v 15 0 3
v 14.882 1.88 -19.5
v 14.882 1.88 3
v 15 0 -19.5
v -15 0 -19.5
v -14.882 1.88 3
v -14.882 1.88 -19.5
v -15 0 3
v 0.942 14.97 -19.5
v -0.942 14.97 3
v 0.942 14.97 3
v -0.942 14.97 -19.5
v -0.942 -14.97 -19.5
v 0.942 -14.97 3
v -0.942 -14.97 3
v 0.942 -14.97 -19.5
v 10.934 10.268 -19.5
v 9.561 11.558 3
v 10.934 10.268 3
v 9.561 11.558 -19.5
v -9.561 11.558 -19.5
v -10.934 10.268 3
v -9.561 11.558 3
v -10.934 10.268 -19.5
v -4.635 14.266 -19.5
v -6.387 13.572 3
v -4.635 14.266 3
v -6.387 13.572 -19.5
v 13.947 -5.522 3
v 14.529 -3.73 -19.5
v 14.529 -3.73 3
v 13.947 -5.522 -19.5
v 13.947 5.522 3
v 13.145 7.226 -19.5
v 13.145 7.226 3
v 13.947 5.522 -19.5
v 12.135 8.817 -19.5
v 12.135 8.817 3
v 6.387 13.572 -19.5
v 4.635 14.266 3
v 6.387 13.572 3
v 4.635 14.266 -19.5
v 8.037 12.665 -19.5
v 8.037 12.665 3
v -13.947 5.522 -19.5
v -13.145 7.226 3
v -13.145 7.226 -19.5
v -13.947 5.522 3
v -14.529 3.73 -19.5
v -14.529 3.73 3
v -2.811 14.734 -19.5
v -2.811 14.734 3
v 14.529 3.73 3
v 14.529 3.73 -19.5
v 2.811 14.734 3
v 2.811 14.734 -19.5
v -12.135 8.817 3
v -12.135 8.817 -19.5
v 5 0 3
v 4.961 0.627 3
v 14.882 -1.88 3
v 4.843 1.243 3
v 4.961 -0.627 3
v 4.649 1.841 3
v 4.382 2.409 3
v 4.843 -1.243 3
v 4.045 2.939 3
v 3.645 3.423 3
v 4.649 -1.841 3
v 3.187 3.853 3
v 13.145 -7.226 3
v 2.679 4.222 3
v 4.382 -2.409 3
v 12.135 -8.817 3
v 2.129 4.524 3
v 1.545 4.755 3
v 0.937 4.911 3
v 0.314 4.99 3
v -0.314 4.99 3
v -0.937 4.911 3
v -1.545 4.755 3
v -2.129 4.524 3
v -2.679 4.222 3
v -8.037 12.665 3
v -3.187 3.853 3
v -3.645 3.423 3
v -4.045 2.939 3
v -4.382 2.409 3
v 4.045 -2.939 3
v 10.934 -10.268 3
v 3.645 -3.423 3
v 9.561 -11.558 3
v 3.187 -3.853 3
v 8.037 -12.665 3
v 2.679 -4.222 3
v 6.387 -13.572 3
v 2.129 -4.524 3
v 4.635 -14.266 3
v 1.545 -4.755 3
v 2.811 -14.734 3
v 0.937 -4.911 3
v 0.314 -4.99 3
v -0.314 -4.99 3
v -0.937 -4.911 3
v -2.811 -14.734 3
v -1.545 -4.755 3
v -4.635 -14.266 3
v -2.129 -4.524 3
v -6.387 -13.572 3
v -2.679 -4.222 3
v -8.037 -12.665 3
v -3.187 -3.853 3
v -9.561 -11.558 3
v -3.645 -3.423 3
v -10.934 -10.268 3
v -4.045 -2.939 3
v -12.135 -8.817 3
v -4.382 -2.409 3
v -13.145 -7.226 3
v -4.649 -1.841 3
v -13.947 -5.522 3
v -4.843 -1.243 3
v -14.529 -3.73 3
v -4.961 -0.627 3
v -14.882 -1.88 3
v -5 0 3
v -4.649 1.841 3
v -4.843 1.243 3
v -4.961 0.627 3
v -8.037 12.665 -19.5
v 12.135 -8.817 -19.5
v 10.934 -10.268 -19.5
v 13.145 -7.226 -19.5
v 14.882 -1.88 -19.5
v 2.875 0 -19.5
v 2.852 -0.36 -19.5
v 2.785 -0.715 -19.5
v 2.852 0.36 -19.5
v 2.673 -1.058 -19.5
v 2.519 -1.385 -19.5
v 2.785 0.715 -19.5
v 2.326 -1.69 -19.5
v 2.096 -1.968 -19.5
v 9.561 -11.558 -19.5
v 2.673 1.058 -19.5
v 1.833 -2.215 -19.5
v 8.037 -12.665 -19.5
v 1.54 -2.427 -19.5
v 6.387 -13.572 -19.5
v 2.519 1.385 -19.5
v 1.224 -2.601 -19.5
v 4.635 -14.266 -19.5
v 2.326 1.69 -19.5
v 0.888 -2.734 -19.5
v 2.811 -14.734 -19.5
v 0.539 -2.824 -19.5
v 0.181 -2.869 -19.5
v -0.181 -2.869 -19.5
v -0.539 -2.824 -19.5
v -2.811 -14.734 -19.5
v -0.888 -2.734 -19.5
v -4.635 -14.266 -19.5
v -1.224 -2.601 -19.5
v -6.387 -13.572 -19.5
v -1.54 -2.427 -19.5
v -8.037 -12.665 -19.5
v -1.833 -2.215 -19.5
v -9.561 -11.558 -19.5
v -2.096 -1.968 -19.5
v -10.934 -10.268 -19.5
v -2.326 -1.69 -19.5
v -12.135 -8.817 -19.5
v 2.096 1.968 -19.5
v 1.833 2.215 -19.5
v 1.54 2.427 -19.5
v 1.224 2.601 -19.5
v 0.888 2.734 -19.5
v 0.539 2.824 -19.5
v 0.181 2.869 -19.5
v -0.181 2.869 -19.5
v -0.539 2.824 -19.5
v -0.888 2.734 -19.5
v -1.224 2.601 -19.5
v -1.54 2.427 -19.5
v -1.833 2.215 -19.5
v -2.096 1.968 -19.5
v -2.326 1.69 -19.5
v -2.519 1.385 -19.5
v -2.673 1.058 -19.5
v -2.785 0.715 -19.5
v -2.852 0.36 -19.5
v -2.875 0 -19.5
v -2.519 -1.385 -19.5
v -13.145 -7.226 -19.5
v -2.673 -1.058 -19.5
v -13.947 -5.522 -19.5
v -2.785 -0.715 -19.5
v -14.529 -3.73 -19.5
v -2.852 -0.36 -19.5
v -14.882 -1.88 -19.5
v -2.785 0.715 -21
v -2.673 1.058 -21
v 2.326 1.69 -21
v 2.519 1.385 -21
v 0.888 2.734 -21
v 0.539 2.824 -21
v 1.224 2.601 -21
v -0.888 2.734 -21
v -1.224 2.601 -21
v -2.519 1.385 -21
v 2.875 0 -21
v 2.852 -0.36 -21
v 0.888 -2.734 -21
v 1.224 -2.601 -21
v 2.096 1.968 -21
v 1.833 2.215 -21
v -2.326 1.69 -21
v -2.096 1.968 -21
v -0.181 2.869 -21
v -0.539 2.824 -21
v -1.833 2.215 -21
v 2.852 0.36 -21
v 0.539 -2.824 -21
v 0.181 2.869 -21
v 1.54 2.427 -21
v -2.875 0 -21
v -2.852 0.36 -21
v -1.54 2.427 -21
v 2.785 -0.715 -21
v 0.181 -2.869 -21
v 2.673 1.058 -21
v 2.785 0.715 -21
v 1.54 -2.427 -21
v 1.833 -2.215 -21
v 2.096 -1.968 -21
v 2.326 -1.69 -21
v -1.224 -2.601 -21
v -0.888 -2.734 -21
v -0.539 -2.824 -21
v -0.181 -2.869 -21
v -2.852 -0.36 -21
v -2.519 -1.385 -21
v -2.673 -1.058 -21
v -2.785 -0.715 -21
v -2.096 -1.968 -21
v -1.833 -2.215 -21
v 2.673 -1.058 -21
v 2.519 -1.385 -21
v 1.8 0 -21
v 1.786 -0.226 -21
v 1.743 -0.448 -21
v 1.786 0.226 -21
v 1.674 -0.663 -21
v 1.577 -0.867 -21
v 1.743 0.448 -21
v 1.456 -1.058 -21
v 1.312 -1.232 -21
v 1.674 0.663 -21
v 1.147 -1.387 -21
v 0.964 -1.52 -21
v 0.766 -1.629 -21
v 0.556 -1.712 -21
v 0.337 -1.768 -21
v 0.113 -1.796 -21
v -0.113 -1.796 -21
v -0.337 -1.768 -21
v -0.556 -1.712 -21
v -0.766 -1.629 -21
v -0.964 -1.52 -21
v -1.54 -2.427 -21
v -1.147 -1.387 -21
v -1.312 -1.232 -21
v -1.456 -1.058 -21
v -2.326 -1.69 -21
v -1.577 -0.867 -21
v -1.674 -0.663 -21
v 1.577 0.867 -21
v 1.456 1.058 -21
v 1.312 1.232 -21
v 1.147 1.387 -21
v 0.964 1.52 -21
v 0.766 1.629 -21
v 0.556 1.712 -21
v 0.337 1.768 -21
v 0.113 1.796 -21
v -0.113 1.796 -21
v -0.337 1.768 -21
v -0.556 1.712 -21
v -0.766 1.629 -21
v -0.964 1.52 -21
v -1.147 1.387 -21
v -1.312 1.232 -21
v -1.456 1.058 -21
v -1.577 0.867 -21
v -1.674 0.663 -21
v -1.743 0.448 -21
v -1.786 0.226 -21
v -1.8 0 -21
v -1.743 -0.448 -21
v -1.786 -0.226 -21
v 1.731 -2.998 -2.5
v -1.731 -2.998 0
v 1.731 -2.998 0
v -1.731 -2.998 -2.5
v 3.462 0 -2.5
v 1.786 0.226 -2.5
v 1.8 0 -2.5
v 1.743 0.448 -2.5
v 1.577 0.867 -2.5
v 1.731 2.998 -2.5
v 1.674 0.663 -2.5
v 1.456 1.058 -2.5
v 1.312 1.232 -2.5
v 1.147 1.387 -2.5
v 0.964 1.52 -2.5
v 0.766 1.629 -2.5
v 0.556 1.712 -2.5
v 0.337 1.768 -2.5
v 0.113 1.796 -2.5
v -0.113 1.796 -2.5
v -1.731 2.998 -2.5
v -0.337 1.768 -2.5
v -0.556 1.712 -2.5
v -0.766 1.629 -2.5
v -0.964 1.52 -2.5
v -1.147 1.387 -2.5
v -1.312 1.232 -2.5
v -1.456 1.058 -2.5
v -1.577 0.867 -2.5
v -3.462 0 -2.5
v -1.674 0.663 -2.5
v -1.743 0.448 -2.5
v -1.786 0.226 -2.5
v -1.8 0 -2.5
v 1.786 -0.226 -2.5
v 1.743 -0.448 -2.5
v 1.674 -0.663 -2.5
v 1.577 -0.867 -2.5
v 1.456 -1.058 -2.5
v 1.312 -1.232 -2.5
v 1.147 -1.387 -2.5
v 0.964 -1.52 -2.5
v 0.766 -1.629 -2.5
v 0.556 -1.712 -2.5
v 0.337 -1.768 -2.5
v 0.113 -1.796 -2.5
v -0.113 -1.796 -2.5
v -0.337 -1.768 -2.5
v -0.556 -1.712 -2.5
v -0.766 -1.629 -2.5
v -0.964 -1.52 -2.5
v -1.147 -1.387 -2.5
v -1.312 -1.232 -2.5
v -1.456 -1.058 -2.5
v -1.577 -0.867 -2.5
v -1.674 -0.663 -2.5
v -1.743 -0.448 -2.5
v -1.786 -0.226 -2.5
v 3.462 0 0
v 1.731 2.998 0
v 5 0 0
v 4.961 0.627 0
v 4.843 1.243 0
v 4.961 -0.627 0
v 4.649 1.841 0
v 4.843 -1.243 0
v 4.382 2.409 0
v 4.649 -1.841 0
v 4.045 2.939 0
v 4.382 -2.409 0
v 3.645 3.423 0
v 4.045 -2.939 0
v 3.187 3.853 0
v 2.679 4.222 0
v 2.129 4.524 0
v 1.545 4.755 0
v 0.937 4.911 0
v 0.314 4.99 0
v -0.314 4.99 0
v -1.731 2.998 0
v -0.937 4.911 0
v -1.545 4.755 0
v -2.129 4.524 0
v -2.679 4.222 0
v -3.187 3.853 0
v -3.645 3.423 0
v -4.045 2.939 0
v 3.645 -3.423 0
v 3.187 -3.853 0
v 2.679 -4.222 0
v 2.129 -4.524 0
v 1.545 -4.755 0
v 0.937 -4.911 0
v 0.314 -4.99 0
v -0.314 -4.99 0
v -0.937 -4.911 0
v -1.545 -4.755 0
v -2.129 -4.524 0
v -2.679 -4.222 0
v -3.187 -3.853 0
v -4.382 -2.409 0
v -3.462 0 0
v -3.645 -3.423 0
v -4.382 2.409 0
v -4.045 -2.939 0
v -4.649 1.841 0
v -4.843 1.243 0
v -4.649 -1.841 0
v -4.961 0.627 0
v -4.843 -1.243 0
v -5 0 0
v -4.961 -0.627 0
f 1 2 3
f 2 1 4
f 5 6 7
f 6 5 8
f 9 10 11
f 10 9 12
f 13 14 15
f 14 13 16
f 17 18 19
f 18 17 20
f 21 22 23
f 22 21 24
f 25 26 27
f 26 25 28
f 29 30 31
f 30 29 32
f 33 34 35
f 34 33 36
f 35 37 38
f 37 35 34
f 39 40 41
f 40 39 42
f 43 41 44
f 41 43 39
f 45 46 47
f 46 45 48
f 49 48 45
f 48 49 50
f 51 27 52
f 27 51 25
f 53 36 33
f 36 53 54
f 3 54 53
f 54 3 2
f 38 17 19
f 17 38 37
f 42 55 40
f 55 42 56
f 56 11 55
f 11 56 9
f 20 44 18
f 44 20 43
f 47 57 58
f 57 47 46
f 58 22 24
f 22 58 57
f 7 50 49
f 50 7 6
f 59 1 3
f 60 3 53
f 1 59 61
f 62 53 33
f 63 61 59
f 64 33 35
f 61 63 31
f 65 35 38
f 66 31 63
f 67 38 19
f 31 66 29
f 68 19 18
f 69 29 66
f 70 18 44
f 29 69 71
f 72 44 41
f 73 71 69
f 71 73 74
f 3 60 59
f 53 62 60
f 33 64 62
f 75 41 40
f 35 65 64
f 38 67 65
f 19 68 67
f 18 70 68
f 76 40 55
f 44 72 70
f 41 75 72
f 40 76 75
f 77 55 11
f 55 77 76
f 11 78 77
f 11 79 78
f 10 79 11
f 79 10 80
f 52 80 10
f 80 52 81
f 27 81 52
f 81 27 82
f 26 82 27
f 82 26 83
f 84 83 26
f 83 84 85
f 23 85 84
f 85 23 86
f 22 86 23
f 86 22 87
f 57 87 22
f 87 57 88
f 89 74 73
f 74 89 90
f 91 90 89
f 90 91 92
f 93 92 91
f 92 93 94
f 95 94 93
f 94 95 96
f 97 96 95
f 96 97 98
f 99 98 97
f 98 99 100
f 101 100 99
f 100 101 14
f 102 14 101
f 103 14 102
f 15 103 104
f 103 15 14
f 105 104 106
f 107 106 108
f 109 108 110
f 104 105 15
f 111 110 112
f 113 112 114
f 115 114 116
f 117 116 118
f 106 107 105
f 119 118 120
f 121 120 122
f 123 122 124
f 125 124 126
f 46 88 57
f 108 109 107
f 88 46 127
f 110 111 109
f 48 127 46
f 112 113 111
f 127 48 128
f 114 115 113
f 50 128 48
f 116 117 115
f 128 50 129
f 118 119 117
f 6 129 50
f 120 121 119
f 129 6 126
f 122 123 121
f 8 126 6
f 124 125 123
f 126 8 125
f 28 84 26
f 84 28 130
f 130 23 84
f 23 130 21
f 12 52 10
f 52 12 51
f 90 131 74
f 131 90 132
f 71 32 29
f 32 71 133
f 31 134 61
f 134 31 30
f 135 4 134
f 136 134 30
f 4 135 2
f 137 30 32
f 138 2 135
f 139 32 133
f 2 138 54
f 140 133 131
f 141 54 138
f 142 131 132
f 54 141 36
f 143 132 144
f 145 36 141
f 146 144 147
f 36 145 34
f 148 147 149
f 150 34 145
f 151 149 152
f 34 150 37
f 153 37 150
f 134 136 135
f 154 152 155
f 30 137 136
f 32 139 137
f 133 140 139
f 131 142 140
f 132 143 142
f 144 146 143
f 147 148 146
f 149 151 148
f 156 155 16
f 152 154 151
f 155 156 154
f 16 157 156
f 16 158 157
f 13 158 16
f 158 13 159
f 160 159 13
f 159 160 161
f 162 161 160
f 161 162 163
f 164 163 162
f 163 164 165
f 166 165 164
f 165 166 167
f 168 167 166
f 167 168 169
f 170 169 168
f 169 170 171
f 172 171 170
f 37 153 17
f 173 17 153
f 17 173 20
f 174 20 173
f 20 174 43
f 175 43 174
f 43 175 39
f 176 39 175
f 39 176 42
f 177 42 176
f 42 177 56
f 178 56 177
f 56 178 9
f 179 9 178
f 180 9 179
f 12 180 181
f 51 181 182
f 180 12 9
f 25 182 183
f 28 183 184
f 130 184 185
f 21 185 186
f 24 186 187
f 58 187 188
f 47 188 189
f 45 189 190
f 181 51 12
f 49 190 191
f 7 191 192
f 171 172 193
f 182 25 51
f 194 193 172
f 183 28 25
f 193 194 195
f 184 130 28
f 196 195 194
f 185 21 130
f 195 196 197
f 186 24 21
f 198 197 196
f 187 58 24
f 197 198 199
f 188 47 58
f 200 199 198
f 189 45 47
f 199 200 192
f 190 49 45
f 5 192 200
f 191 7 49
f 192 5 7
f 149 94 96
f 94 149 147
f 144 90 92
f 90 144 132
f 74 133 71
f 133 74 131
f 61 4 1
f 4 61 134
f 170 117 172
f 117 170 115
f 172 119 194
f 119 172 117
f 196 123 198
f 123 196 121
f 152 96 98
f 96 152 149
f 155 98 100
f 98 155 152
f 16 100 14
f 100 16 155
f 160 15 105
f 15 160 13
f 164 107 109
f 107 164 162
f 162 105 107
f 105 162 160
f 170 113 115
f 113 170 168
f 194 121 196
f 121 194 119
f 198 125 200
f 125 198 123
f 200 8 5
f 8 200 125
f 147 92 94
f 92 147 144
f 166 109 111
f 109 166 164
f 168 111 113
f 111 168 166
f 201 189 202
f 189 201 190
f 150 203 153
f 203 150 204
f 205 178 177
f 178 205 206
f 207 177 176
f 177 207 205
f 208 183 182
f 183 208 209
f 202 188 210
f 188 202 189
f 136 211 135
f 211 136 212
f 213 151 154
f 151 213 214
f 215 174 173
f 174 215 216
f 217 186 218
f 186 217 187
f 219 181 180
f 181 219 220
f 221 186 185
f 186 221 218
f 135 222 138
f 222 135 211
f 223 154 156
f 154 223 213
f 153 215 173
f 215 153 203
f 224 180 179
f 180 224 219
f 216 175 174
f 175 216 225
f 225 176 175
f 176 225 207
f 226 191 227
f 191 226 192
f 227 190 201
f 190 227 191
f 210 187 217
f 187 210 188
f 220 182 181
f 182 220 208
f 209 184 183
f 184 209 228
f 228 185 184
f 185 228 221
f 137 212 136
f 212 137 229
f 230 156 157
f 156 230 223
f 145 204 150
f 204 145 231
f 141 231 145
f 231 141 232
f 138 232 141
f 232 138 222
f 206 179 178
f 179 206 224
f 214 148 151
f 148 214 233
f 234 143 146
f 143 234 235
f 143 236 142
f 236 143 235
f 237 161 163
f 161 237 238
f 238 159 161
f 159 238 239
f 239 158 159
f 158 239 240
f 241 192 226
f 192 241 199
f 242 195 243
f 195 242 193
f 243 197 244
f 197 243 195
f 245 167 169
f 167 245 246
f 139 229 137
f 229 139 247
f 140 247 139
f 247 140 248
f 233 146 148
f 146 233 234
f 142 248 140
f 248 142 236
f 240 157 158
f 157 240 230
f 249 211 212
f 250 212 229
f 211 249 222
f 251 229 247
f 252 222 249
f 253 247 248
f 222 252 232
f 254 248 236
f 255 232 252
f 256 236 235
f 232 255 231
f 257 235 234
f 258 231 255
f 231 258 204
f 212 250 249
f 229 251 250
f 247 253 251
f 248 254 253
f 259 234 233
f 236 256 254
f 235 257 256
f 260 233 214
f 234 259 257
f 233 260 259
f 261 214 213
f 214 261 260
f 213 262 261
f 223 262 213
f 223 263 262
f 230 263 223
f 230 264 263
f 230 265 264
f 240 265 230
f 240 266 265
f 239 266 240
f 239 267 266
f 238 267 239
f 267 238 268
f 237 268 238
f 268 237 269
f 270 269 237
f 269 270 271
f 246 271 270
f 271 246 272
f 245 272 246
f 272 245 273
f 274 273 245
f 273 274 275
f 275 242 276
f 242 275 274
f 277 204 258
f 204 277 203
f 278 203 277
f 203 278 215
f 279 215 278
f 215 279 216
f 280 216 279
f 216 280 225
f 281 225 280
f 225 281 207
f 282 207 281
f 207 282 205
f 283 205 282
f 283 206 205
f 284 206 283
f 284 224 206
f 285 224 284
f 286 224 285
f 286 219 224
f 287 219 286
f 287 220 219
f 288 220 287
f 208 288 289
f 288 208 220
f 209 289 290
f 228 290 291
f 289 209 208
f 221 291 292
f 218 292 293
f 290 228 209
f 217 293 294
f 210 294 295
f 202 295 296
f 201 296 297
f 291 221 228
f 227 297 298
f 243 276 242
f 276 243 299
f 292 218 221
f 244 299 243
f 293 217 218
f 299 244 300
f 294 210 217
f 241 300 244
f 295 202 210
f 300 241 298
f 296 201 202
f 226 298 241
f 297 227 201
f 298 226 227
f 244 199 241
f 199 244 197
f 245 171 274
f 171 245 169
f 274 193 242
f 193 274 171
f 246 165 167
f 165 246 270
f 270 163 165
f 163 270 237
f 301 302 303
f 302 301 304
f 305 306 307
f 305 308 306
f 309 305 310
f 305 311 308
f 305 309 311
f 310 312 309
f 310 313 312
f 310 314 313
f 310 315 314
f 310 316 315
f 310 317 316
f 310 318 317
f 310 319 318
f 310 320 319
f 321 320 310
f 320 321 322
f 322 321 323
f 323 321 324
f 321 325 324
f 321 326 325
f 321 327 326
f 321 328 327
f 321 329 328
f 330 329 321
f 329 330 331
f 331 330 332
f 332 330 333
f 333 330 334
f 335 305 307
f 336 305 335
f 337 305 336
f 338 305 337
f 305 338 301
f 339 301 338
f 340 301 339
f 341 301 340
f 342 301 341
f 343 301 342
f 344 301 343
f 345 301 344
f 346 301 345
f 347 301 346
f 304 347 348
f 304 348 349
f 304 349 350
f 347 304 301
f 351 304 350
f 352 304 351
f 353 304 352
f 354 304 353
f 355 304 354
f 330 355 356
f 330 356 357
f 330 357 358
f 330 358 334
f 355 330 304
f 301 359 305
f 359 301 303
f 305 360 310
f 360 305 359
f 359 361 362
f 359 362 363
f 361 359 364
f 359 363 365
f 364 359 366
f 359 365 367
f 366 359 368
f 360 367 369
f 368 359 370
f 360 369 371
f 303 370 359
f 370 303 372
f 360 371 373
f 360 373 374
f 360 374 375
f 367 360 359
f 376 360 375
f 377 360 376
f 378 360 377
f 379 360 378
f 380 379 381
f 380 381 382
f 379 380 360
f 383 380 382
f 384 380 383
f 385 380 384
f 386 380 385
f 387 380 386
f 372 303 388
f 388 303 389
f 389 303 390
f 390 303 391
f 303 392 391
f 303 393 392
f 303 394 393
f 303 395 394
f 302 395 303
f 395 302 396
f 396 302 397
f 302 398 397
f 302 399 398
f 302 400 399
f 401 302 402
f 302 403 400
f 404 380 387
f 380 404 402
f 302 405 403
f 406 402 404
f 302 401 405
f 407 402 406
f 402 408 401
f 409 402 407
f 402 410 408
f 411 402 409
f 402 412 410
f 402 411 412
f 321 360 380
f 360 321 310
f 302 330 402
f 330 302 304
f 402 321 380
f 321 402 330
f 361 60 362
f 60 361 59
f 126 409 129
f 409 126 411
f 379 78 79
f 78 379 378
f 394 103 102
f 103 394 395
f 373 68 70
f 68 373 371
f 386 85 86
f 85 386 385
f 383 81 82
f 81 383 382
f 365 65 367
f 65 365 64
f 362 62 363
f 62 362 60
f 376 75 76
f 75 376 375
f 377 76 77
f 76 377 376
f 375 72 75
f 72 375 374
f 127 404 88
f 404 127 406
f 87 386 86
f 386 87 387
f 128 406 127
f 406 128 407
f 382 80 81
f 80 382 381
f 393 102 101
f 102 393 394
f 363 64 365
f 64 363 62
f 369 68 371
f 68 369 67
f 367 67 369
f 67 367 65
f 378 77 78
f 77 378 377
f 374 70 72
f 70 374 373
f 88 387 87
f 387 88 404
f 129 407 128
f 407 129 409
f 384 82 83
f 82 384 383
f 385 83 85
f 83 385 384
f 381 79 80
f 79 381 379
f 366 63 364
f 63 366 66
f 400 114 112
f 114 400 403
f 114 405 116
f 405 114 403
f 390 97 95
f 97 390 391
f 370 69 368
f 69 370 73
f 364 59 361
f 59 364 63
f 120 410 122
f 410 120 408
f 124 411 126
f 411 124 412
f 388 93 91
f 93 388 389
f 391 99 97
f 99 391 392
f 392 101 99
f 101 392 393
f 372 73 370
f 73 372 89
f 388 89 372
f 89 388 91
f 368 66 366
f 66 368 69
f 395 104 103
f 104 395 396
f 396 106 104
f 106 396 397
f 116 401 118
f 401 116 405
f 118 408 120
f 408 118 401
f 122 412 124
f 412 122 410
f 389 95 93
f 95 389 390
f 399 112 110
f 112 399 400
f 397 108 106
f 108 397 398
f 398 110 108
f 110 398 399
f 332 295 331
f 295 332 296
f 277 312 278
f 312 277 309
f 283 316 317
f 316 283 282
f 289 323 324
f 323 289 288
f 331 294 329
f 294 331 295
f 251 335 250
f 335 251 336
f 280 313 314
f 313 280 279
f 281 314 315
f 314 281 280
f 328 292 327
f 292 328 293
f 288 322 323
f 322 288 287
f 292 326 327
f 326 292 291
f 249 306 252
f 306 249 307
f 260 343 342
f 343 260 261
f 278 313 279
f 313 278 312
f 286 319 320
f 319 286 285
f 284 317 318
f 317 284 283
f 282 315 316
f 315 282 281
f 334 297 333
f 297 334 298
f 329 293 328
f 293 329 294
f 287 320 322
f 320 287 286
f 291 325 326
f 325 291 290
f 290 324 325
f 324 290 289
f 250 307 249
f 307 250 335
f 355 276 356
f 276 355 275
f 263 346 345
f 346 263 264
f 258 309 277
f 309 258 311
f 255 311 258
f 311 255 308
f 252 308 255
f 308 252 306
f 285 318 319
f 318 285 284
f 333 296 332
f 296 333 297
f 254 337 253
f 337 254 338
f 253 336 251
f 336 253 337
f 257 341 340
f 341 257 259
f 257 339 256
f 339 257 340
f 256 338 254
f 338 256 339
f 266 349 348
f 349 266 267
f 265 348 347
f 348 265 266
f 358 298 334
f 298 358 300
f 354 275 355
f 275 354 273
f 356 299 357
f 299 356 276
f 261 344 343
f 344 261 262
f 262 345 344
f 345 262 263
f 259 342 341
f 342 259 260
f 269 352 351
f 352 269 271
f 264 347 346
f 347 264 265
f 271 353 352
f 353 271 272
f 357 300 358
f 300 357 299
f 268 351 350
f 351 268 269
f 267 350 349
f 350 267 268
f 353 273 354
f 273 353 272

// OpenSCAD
$fn = 50;

difference() {
	union() {
		translate(v = [0, 0, -19.5]) {
			cylinder(h = 22.5, r = 15.0);
		}
		#translate(v = [0, 0, -21.0]) {
			cylinder(h = 21, r = 2.875);
		}
	}
	union() {
		translate(v = [0, 0, 0]) {
			rotate(a = [0, 0, 0]) {
				difference() {
					union() {
						translate(v = [0, 0, -2.5]) {
							linear_extrude(height = 2.5) {
								polygon(points = [[3.4619999999999997, 0.0], [1.7310000000000003, 2.9981799479017264], [-1.7309999999999992, 2.9981799479017264], [-3.4619999999999997, 4.2397272186481365e-16], [-1.7310000000000014, -2.998179947901726], [1.7309999999999977, -2.9981799479017277]]);
							}
						}
					}
					union();
				}
			}
		}
		#cylinder(h = 3, r = 5.0);
		#translate(v = [0, 0, -100.0]) {
			cylinder(h = 200, r = 1.8);
		}
	}
}
